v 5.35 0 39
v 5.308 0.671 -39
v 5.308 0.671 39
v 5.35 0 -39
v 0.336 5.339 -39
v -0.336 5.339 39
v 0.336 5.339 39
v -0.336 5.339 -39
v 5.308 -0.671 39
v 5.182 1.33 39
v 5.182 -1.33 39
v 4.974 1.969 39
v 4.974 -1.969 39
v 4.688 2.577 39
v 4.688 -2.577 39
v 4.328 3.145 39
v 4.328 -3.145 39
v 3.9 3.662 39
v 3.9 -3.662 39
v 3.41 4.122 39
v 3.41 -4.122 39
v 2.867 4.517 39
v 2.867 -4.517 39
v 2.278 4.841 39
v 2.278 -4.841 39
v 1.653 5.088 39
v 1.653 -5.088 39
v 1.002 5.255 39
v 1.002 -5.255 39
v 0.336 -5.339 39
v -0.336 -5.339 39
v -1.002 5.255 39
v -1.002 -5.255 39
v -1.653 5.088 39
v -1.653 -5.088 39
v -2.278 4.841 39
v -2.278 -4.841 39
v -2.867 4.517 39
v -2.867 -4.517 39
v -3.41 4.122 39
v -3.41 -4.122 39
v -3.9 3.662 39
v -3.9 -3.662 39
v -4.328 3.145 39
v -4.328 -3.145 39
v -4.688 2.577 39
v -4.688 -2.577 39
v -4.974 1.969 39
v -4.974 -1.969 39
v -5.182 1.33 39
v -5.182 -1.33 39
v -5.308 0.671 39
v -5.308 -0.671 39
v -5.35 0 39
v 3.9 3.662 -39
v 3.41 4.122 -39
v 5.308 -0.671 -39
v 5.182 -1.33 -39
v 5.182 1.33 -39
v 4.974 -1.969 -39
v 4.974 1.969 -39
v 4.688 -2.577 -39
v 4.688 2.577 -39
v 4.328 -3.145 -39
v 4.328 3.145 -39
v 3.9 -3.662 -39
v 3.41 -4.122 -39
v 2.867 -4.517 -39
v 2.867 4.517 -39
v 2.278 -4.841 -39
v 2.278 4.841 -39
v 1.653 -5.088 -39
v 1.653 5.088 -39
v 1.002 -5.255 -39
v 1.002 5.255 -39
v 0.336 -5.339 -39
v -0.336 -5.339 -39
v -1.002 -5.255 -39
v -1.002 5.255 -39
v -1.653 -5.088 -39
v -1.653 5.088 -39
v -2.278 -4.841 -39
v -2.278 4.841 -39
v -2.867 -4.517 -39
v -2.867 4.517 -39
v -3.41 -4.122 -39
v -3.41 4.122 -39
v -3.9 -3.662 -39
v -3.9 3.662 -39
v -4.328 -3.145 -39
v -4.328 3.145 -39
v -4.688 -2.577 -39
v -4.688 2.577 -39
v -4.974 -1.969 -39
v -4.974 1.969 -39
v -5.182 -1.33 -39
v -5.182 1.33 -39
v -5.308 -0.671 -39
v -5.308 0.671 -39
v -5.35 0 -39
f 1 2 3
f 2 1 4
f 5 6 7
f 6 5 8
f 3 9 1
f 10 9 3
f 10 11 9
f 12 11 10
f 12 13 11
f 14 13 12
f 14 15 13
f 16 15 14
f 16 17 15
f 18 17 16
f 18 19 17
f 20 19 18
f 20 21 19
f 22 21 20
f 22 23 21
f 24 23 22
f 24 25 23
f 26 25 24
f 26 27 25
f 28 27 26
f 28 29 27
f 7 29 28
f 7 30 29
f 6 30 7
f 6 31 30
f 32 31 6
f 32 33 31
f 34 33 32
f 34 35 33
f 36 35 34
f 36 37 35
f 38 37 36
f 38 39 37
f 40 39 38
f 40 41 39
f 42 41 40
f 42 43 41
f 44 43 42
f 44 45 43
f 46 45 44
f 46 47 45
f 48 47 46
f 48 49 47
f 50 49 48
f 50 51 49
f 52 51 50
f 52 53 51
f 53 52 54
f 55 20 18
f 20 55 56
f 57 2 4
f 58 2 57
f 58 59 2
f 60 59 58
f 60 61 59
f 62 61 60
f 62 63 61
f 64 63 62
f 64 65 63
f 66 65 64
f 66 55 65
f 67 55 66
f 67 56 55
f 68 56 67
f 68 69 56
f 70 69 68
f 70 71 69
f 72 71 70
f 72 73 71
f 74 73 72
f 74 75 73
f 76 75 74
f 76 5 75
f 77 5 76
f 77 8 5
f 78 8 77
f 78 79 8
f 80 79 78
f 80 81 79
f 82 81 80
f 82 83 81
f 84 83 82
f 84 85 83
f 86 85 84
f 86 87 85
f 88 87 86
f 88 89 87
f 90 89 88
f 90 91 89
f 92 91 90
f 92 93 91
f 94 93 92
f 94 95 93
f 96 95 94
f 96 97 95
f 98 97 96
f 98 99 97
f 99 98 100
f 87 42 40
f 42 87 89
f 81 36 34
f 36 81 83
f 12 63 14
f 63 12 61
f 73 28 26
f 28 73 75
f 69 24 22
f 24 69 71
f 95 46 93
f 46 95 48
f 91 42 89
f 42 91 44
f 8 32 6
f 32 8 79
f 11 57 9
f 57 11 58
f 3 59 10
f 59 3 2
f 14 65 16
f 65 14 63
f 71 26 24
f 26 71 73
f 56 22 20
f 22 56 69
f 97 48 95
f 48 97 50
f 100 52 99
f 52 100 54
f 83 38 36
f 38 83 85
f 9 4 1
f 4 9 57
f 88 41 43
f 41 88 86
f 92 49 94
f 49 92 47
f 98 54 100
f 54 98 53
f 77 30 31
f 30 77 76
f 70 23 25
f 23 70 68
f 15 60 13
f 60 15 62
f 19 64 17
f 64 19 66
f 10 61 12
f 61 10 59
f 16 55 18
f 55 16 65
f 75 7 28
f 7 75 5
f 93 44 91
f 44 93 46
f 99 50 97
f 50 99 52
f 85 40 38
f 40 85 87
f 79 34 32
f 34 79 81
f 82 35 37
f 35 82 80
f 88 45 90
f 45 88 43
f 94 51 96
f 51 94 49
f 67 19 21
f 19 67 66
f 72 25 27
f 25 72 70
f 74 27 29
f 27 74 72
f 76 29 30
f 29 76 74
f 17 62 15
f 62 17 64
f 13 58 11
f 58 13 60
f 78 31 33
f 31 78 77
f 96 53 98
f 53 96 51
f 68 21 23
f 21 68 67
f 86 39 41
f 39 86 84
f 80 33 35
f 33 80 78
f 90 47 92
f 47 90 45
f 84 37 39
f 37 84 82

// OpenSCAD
$fn = 50;


difference() {
	union() {
		translate(v = [0, 0, -39.0000000000]) {
			cylinder(h = 78, r = 5.3500000000);
		}
	}
	union() {
		translate(v = [0, 0, -100.0000000000]) {
			cylinder(h = 200, r = 0);
		}
	}
}
